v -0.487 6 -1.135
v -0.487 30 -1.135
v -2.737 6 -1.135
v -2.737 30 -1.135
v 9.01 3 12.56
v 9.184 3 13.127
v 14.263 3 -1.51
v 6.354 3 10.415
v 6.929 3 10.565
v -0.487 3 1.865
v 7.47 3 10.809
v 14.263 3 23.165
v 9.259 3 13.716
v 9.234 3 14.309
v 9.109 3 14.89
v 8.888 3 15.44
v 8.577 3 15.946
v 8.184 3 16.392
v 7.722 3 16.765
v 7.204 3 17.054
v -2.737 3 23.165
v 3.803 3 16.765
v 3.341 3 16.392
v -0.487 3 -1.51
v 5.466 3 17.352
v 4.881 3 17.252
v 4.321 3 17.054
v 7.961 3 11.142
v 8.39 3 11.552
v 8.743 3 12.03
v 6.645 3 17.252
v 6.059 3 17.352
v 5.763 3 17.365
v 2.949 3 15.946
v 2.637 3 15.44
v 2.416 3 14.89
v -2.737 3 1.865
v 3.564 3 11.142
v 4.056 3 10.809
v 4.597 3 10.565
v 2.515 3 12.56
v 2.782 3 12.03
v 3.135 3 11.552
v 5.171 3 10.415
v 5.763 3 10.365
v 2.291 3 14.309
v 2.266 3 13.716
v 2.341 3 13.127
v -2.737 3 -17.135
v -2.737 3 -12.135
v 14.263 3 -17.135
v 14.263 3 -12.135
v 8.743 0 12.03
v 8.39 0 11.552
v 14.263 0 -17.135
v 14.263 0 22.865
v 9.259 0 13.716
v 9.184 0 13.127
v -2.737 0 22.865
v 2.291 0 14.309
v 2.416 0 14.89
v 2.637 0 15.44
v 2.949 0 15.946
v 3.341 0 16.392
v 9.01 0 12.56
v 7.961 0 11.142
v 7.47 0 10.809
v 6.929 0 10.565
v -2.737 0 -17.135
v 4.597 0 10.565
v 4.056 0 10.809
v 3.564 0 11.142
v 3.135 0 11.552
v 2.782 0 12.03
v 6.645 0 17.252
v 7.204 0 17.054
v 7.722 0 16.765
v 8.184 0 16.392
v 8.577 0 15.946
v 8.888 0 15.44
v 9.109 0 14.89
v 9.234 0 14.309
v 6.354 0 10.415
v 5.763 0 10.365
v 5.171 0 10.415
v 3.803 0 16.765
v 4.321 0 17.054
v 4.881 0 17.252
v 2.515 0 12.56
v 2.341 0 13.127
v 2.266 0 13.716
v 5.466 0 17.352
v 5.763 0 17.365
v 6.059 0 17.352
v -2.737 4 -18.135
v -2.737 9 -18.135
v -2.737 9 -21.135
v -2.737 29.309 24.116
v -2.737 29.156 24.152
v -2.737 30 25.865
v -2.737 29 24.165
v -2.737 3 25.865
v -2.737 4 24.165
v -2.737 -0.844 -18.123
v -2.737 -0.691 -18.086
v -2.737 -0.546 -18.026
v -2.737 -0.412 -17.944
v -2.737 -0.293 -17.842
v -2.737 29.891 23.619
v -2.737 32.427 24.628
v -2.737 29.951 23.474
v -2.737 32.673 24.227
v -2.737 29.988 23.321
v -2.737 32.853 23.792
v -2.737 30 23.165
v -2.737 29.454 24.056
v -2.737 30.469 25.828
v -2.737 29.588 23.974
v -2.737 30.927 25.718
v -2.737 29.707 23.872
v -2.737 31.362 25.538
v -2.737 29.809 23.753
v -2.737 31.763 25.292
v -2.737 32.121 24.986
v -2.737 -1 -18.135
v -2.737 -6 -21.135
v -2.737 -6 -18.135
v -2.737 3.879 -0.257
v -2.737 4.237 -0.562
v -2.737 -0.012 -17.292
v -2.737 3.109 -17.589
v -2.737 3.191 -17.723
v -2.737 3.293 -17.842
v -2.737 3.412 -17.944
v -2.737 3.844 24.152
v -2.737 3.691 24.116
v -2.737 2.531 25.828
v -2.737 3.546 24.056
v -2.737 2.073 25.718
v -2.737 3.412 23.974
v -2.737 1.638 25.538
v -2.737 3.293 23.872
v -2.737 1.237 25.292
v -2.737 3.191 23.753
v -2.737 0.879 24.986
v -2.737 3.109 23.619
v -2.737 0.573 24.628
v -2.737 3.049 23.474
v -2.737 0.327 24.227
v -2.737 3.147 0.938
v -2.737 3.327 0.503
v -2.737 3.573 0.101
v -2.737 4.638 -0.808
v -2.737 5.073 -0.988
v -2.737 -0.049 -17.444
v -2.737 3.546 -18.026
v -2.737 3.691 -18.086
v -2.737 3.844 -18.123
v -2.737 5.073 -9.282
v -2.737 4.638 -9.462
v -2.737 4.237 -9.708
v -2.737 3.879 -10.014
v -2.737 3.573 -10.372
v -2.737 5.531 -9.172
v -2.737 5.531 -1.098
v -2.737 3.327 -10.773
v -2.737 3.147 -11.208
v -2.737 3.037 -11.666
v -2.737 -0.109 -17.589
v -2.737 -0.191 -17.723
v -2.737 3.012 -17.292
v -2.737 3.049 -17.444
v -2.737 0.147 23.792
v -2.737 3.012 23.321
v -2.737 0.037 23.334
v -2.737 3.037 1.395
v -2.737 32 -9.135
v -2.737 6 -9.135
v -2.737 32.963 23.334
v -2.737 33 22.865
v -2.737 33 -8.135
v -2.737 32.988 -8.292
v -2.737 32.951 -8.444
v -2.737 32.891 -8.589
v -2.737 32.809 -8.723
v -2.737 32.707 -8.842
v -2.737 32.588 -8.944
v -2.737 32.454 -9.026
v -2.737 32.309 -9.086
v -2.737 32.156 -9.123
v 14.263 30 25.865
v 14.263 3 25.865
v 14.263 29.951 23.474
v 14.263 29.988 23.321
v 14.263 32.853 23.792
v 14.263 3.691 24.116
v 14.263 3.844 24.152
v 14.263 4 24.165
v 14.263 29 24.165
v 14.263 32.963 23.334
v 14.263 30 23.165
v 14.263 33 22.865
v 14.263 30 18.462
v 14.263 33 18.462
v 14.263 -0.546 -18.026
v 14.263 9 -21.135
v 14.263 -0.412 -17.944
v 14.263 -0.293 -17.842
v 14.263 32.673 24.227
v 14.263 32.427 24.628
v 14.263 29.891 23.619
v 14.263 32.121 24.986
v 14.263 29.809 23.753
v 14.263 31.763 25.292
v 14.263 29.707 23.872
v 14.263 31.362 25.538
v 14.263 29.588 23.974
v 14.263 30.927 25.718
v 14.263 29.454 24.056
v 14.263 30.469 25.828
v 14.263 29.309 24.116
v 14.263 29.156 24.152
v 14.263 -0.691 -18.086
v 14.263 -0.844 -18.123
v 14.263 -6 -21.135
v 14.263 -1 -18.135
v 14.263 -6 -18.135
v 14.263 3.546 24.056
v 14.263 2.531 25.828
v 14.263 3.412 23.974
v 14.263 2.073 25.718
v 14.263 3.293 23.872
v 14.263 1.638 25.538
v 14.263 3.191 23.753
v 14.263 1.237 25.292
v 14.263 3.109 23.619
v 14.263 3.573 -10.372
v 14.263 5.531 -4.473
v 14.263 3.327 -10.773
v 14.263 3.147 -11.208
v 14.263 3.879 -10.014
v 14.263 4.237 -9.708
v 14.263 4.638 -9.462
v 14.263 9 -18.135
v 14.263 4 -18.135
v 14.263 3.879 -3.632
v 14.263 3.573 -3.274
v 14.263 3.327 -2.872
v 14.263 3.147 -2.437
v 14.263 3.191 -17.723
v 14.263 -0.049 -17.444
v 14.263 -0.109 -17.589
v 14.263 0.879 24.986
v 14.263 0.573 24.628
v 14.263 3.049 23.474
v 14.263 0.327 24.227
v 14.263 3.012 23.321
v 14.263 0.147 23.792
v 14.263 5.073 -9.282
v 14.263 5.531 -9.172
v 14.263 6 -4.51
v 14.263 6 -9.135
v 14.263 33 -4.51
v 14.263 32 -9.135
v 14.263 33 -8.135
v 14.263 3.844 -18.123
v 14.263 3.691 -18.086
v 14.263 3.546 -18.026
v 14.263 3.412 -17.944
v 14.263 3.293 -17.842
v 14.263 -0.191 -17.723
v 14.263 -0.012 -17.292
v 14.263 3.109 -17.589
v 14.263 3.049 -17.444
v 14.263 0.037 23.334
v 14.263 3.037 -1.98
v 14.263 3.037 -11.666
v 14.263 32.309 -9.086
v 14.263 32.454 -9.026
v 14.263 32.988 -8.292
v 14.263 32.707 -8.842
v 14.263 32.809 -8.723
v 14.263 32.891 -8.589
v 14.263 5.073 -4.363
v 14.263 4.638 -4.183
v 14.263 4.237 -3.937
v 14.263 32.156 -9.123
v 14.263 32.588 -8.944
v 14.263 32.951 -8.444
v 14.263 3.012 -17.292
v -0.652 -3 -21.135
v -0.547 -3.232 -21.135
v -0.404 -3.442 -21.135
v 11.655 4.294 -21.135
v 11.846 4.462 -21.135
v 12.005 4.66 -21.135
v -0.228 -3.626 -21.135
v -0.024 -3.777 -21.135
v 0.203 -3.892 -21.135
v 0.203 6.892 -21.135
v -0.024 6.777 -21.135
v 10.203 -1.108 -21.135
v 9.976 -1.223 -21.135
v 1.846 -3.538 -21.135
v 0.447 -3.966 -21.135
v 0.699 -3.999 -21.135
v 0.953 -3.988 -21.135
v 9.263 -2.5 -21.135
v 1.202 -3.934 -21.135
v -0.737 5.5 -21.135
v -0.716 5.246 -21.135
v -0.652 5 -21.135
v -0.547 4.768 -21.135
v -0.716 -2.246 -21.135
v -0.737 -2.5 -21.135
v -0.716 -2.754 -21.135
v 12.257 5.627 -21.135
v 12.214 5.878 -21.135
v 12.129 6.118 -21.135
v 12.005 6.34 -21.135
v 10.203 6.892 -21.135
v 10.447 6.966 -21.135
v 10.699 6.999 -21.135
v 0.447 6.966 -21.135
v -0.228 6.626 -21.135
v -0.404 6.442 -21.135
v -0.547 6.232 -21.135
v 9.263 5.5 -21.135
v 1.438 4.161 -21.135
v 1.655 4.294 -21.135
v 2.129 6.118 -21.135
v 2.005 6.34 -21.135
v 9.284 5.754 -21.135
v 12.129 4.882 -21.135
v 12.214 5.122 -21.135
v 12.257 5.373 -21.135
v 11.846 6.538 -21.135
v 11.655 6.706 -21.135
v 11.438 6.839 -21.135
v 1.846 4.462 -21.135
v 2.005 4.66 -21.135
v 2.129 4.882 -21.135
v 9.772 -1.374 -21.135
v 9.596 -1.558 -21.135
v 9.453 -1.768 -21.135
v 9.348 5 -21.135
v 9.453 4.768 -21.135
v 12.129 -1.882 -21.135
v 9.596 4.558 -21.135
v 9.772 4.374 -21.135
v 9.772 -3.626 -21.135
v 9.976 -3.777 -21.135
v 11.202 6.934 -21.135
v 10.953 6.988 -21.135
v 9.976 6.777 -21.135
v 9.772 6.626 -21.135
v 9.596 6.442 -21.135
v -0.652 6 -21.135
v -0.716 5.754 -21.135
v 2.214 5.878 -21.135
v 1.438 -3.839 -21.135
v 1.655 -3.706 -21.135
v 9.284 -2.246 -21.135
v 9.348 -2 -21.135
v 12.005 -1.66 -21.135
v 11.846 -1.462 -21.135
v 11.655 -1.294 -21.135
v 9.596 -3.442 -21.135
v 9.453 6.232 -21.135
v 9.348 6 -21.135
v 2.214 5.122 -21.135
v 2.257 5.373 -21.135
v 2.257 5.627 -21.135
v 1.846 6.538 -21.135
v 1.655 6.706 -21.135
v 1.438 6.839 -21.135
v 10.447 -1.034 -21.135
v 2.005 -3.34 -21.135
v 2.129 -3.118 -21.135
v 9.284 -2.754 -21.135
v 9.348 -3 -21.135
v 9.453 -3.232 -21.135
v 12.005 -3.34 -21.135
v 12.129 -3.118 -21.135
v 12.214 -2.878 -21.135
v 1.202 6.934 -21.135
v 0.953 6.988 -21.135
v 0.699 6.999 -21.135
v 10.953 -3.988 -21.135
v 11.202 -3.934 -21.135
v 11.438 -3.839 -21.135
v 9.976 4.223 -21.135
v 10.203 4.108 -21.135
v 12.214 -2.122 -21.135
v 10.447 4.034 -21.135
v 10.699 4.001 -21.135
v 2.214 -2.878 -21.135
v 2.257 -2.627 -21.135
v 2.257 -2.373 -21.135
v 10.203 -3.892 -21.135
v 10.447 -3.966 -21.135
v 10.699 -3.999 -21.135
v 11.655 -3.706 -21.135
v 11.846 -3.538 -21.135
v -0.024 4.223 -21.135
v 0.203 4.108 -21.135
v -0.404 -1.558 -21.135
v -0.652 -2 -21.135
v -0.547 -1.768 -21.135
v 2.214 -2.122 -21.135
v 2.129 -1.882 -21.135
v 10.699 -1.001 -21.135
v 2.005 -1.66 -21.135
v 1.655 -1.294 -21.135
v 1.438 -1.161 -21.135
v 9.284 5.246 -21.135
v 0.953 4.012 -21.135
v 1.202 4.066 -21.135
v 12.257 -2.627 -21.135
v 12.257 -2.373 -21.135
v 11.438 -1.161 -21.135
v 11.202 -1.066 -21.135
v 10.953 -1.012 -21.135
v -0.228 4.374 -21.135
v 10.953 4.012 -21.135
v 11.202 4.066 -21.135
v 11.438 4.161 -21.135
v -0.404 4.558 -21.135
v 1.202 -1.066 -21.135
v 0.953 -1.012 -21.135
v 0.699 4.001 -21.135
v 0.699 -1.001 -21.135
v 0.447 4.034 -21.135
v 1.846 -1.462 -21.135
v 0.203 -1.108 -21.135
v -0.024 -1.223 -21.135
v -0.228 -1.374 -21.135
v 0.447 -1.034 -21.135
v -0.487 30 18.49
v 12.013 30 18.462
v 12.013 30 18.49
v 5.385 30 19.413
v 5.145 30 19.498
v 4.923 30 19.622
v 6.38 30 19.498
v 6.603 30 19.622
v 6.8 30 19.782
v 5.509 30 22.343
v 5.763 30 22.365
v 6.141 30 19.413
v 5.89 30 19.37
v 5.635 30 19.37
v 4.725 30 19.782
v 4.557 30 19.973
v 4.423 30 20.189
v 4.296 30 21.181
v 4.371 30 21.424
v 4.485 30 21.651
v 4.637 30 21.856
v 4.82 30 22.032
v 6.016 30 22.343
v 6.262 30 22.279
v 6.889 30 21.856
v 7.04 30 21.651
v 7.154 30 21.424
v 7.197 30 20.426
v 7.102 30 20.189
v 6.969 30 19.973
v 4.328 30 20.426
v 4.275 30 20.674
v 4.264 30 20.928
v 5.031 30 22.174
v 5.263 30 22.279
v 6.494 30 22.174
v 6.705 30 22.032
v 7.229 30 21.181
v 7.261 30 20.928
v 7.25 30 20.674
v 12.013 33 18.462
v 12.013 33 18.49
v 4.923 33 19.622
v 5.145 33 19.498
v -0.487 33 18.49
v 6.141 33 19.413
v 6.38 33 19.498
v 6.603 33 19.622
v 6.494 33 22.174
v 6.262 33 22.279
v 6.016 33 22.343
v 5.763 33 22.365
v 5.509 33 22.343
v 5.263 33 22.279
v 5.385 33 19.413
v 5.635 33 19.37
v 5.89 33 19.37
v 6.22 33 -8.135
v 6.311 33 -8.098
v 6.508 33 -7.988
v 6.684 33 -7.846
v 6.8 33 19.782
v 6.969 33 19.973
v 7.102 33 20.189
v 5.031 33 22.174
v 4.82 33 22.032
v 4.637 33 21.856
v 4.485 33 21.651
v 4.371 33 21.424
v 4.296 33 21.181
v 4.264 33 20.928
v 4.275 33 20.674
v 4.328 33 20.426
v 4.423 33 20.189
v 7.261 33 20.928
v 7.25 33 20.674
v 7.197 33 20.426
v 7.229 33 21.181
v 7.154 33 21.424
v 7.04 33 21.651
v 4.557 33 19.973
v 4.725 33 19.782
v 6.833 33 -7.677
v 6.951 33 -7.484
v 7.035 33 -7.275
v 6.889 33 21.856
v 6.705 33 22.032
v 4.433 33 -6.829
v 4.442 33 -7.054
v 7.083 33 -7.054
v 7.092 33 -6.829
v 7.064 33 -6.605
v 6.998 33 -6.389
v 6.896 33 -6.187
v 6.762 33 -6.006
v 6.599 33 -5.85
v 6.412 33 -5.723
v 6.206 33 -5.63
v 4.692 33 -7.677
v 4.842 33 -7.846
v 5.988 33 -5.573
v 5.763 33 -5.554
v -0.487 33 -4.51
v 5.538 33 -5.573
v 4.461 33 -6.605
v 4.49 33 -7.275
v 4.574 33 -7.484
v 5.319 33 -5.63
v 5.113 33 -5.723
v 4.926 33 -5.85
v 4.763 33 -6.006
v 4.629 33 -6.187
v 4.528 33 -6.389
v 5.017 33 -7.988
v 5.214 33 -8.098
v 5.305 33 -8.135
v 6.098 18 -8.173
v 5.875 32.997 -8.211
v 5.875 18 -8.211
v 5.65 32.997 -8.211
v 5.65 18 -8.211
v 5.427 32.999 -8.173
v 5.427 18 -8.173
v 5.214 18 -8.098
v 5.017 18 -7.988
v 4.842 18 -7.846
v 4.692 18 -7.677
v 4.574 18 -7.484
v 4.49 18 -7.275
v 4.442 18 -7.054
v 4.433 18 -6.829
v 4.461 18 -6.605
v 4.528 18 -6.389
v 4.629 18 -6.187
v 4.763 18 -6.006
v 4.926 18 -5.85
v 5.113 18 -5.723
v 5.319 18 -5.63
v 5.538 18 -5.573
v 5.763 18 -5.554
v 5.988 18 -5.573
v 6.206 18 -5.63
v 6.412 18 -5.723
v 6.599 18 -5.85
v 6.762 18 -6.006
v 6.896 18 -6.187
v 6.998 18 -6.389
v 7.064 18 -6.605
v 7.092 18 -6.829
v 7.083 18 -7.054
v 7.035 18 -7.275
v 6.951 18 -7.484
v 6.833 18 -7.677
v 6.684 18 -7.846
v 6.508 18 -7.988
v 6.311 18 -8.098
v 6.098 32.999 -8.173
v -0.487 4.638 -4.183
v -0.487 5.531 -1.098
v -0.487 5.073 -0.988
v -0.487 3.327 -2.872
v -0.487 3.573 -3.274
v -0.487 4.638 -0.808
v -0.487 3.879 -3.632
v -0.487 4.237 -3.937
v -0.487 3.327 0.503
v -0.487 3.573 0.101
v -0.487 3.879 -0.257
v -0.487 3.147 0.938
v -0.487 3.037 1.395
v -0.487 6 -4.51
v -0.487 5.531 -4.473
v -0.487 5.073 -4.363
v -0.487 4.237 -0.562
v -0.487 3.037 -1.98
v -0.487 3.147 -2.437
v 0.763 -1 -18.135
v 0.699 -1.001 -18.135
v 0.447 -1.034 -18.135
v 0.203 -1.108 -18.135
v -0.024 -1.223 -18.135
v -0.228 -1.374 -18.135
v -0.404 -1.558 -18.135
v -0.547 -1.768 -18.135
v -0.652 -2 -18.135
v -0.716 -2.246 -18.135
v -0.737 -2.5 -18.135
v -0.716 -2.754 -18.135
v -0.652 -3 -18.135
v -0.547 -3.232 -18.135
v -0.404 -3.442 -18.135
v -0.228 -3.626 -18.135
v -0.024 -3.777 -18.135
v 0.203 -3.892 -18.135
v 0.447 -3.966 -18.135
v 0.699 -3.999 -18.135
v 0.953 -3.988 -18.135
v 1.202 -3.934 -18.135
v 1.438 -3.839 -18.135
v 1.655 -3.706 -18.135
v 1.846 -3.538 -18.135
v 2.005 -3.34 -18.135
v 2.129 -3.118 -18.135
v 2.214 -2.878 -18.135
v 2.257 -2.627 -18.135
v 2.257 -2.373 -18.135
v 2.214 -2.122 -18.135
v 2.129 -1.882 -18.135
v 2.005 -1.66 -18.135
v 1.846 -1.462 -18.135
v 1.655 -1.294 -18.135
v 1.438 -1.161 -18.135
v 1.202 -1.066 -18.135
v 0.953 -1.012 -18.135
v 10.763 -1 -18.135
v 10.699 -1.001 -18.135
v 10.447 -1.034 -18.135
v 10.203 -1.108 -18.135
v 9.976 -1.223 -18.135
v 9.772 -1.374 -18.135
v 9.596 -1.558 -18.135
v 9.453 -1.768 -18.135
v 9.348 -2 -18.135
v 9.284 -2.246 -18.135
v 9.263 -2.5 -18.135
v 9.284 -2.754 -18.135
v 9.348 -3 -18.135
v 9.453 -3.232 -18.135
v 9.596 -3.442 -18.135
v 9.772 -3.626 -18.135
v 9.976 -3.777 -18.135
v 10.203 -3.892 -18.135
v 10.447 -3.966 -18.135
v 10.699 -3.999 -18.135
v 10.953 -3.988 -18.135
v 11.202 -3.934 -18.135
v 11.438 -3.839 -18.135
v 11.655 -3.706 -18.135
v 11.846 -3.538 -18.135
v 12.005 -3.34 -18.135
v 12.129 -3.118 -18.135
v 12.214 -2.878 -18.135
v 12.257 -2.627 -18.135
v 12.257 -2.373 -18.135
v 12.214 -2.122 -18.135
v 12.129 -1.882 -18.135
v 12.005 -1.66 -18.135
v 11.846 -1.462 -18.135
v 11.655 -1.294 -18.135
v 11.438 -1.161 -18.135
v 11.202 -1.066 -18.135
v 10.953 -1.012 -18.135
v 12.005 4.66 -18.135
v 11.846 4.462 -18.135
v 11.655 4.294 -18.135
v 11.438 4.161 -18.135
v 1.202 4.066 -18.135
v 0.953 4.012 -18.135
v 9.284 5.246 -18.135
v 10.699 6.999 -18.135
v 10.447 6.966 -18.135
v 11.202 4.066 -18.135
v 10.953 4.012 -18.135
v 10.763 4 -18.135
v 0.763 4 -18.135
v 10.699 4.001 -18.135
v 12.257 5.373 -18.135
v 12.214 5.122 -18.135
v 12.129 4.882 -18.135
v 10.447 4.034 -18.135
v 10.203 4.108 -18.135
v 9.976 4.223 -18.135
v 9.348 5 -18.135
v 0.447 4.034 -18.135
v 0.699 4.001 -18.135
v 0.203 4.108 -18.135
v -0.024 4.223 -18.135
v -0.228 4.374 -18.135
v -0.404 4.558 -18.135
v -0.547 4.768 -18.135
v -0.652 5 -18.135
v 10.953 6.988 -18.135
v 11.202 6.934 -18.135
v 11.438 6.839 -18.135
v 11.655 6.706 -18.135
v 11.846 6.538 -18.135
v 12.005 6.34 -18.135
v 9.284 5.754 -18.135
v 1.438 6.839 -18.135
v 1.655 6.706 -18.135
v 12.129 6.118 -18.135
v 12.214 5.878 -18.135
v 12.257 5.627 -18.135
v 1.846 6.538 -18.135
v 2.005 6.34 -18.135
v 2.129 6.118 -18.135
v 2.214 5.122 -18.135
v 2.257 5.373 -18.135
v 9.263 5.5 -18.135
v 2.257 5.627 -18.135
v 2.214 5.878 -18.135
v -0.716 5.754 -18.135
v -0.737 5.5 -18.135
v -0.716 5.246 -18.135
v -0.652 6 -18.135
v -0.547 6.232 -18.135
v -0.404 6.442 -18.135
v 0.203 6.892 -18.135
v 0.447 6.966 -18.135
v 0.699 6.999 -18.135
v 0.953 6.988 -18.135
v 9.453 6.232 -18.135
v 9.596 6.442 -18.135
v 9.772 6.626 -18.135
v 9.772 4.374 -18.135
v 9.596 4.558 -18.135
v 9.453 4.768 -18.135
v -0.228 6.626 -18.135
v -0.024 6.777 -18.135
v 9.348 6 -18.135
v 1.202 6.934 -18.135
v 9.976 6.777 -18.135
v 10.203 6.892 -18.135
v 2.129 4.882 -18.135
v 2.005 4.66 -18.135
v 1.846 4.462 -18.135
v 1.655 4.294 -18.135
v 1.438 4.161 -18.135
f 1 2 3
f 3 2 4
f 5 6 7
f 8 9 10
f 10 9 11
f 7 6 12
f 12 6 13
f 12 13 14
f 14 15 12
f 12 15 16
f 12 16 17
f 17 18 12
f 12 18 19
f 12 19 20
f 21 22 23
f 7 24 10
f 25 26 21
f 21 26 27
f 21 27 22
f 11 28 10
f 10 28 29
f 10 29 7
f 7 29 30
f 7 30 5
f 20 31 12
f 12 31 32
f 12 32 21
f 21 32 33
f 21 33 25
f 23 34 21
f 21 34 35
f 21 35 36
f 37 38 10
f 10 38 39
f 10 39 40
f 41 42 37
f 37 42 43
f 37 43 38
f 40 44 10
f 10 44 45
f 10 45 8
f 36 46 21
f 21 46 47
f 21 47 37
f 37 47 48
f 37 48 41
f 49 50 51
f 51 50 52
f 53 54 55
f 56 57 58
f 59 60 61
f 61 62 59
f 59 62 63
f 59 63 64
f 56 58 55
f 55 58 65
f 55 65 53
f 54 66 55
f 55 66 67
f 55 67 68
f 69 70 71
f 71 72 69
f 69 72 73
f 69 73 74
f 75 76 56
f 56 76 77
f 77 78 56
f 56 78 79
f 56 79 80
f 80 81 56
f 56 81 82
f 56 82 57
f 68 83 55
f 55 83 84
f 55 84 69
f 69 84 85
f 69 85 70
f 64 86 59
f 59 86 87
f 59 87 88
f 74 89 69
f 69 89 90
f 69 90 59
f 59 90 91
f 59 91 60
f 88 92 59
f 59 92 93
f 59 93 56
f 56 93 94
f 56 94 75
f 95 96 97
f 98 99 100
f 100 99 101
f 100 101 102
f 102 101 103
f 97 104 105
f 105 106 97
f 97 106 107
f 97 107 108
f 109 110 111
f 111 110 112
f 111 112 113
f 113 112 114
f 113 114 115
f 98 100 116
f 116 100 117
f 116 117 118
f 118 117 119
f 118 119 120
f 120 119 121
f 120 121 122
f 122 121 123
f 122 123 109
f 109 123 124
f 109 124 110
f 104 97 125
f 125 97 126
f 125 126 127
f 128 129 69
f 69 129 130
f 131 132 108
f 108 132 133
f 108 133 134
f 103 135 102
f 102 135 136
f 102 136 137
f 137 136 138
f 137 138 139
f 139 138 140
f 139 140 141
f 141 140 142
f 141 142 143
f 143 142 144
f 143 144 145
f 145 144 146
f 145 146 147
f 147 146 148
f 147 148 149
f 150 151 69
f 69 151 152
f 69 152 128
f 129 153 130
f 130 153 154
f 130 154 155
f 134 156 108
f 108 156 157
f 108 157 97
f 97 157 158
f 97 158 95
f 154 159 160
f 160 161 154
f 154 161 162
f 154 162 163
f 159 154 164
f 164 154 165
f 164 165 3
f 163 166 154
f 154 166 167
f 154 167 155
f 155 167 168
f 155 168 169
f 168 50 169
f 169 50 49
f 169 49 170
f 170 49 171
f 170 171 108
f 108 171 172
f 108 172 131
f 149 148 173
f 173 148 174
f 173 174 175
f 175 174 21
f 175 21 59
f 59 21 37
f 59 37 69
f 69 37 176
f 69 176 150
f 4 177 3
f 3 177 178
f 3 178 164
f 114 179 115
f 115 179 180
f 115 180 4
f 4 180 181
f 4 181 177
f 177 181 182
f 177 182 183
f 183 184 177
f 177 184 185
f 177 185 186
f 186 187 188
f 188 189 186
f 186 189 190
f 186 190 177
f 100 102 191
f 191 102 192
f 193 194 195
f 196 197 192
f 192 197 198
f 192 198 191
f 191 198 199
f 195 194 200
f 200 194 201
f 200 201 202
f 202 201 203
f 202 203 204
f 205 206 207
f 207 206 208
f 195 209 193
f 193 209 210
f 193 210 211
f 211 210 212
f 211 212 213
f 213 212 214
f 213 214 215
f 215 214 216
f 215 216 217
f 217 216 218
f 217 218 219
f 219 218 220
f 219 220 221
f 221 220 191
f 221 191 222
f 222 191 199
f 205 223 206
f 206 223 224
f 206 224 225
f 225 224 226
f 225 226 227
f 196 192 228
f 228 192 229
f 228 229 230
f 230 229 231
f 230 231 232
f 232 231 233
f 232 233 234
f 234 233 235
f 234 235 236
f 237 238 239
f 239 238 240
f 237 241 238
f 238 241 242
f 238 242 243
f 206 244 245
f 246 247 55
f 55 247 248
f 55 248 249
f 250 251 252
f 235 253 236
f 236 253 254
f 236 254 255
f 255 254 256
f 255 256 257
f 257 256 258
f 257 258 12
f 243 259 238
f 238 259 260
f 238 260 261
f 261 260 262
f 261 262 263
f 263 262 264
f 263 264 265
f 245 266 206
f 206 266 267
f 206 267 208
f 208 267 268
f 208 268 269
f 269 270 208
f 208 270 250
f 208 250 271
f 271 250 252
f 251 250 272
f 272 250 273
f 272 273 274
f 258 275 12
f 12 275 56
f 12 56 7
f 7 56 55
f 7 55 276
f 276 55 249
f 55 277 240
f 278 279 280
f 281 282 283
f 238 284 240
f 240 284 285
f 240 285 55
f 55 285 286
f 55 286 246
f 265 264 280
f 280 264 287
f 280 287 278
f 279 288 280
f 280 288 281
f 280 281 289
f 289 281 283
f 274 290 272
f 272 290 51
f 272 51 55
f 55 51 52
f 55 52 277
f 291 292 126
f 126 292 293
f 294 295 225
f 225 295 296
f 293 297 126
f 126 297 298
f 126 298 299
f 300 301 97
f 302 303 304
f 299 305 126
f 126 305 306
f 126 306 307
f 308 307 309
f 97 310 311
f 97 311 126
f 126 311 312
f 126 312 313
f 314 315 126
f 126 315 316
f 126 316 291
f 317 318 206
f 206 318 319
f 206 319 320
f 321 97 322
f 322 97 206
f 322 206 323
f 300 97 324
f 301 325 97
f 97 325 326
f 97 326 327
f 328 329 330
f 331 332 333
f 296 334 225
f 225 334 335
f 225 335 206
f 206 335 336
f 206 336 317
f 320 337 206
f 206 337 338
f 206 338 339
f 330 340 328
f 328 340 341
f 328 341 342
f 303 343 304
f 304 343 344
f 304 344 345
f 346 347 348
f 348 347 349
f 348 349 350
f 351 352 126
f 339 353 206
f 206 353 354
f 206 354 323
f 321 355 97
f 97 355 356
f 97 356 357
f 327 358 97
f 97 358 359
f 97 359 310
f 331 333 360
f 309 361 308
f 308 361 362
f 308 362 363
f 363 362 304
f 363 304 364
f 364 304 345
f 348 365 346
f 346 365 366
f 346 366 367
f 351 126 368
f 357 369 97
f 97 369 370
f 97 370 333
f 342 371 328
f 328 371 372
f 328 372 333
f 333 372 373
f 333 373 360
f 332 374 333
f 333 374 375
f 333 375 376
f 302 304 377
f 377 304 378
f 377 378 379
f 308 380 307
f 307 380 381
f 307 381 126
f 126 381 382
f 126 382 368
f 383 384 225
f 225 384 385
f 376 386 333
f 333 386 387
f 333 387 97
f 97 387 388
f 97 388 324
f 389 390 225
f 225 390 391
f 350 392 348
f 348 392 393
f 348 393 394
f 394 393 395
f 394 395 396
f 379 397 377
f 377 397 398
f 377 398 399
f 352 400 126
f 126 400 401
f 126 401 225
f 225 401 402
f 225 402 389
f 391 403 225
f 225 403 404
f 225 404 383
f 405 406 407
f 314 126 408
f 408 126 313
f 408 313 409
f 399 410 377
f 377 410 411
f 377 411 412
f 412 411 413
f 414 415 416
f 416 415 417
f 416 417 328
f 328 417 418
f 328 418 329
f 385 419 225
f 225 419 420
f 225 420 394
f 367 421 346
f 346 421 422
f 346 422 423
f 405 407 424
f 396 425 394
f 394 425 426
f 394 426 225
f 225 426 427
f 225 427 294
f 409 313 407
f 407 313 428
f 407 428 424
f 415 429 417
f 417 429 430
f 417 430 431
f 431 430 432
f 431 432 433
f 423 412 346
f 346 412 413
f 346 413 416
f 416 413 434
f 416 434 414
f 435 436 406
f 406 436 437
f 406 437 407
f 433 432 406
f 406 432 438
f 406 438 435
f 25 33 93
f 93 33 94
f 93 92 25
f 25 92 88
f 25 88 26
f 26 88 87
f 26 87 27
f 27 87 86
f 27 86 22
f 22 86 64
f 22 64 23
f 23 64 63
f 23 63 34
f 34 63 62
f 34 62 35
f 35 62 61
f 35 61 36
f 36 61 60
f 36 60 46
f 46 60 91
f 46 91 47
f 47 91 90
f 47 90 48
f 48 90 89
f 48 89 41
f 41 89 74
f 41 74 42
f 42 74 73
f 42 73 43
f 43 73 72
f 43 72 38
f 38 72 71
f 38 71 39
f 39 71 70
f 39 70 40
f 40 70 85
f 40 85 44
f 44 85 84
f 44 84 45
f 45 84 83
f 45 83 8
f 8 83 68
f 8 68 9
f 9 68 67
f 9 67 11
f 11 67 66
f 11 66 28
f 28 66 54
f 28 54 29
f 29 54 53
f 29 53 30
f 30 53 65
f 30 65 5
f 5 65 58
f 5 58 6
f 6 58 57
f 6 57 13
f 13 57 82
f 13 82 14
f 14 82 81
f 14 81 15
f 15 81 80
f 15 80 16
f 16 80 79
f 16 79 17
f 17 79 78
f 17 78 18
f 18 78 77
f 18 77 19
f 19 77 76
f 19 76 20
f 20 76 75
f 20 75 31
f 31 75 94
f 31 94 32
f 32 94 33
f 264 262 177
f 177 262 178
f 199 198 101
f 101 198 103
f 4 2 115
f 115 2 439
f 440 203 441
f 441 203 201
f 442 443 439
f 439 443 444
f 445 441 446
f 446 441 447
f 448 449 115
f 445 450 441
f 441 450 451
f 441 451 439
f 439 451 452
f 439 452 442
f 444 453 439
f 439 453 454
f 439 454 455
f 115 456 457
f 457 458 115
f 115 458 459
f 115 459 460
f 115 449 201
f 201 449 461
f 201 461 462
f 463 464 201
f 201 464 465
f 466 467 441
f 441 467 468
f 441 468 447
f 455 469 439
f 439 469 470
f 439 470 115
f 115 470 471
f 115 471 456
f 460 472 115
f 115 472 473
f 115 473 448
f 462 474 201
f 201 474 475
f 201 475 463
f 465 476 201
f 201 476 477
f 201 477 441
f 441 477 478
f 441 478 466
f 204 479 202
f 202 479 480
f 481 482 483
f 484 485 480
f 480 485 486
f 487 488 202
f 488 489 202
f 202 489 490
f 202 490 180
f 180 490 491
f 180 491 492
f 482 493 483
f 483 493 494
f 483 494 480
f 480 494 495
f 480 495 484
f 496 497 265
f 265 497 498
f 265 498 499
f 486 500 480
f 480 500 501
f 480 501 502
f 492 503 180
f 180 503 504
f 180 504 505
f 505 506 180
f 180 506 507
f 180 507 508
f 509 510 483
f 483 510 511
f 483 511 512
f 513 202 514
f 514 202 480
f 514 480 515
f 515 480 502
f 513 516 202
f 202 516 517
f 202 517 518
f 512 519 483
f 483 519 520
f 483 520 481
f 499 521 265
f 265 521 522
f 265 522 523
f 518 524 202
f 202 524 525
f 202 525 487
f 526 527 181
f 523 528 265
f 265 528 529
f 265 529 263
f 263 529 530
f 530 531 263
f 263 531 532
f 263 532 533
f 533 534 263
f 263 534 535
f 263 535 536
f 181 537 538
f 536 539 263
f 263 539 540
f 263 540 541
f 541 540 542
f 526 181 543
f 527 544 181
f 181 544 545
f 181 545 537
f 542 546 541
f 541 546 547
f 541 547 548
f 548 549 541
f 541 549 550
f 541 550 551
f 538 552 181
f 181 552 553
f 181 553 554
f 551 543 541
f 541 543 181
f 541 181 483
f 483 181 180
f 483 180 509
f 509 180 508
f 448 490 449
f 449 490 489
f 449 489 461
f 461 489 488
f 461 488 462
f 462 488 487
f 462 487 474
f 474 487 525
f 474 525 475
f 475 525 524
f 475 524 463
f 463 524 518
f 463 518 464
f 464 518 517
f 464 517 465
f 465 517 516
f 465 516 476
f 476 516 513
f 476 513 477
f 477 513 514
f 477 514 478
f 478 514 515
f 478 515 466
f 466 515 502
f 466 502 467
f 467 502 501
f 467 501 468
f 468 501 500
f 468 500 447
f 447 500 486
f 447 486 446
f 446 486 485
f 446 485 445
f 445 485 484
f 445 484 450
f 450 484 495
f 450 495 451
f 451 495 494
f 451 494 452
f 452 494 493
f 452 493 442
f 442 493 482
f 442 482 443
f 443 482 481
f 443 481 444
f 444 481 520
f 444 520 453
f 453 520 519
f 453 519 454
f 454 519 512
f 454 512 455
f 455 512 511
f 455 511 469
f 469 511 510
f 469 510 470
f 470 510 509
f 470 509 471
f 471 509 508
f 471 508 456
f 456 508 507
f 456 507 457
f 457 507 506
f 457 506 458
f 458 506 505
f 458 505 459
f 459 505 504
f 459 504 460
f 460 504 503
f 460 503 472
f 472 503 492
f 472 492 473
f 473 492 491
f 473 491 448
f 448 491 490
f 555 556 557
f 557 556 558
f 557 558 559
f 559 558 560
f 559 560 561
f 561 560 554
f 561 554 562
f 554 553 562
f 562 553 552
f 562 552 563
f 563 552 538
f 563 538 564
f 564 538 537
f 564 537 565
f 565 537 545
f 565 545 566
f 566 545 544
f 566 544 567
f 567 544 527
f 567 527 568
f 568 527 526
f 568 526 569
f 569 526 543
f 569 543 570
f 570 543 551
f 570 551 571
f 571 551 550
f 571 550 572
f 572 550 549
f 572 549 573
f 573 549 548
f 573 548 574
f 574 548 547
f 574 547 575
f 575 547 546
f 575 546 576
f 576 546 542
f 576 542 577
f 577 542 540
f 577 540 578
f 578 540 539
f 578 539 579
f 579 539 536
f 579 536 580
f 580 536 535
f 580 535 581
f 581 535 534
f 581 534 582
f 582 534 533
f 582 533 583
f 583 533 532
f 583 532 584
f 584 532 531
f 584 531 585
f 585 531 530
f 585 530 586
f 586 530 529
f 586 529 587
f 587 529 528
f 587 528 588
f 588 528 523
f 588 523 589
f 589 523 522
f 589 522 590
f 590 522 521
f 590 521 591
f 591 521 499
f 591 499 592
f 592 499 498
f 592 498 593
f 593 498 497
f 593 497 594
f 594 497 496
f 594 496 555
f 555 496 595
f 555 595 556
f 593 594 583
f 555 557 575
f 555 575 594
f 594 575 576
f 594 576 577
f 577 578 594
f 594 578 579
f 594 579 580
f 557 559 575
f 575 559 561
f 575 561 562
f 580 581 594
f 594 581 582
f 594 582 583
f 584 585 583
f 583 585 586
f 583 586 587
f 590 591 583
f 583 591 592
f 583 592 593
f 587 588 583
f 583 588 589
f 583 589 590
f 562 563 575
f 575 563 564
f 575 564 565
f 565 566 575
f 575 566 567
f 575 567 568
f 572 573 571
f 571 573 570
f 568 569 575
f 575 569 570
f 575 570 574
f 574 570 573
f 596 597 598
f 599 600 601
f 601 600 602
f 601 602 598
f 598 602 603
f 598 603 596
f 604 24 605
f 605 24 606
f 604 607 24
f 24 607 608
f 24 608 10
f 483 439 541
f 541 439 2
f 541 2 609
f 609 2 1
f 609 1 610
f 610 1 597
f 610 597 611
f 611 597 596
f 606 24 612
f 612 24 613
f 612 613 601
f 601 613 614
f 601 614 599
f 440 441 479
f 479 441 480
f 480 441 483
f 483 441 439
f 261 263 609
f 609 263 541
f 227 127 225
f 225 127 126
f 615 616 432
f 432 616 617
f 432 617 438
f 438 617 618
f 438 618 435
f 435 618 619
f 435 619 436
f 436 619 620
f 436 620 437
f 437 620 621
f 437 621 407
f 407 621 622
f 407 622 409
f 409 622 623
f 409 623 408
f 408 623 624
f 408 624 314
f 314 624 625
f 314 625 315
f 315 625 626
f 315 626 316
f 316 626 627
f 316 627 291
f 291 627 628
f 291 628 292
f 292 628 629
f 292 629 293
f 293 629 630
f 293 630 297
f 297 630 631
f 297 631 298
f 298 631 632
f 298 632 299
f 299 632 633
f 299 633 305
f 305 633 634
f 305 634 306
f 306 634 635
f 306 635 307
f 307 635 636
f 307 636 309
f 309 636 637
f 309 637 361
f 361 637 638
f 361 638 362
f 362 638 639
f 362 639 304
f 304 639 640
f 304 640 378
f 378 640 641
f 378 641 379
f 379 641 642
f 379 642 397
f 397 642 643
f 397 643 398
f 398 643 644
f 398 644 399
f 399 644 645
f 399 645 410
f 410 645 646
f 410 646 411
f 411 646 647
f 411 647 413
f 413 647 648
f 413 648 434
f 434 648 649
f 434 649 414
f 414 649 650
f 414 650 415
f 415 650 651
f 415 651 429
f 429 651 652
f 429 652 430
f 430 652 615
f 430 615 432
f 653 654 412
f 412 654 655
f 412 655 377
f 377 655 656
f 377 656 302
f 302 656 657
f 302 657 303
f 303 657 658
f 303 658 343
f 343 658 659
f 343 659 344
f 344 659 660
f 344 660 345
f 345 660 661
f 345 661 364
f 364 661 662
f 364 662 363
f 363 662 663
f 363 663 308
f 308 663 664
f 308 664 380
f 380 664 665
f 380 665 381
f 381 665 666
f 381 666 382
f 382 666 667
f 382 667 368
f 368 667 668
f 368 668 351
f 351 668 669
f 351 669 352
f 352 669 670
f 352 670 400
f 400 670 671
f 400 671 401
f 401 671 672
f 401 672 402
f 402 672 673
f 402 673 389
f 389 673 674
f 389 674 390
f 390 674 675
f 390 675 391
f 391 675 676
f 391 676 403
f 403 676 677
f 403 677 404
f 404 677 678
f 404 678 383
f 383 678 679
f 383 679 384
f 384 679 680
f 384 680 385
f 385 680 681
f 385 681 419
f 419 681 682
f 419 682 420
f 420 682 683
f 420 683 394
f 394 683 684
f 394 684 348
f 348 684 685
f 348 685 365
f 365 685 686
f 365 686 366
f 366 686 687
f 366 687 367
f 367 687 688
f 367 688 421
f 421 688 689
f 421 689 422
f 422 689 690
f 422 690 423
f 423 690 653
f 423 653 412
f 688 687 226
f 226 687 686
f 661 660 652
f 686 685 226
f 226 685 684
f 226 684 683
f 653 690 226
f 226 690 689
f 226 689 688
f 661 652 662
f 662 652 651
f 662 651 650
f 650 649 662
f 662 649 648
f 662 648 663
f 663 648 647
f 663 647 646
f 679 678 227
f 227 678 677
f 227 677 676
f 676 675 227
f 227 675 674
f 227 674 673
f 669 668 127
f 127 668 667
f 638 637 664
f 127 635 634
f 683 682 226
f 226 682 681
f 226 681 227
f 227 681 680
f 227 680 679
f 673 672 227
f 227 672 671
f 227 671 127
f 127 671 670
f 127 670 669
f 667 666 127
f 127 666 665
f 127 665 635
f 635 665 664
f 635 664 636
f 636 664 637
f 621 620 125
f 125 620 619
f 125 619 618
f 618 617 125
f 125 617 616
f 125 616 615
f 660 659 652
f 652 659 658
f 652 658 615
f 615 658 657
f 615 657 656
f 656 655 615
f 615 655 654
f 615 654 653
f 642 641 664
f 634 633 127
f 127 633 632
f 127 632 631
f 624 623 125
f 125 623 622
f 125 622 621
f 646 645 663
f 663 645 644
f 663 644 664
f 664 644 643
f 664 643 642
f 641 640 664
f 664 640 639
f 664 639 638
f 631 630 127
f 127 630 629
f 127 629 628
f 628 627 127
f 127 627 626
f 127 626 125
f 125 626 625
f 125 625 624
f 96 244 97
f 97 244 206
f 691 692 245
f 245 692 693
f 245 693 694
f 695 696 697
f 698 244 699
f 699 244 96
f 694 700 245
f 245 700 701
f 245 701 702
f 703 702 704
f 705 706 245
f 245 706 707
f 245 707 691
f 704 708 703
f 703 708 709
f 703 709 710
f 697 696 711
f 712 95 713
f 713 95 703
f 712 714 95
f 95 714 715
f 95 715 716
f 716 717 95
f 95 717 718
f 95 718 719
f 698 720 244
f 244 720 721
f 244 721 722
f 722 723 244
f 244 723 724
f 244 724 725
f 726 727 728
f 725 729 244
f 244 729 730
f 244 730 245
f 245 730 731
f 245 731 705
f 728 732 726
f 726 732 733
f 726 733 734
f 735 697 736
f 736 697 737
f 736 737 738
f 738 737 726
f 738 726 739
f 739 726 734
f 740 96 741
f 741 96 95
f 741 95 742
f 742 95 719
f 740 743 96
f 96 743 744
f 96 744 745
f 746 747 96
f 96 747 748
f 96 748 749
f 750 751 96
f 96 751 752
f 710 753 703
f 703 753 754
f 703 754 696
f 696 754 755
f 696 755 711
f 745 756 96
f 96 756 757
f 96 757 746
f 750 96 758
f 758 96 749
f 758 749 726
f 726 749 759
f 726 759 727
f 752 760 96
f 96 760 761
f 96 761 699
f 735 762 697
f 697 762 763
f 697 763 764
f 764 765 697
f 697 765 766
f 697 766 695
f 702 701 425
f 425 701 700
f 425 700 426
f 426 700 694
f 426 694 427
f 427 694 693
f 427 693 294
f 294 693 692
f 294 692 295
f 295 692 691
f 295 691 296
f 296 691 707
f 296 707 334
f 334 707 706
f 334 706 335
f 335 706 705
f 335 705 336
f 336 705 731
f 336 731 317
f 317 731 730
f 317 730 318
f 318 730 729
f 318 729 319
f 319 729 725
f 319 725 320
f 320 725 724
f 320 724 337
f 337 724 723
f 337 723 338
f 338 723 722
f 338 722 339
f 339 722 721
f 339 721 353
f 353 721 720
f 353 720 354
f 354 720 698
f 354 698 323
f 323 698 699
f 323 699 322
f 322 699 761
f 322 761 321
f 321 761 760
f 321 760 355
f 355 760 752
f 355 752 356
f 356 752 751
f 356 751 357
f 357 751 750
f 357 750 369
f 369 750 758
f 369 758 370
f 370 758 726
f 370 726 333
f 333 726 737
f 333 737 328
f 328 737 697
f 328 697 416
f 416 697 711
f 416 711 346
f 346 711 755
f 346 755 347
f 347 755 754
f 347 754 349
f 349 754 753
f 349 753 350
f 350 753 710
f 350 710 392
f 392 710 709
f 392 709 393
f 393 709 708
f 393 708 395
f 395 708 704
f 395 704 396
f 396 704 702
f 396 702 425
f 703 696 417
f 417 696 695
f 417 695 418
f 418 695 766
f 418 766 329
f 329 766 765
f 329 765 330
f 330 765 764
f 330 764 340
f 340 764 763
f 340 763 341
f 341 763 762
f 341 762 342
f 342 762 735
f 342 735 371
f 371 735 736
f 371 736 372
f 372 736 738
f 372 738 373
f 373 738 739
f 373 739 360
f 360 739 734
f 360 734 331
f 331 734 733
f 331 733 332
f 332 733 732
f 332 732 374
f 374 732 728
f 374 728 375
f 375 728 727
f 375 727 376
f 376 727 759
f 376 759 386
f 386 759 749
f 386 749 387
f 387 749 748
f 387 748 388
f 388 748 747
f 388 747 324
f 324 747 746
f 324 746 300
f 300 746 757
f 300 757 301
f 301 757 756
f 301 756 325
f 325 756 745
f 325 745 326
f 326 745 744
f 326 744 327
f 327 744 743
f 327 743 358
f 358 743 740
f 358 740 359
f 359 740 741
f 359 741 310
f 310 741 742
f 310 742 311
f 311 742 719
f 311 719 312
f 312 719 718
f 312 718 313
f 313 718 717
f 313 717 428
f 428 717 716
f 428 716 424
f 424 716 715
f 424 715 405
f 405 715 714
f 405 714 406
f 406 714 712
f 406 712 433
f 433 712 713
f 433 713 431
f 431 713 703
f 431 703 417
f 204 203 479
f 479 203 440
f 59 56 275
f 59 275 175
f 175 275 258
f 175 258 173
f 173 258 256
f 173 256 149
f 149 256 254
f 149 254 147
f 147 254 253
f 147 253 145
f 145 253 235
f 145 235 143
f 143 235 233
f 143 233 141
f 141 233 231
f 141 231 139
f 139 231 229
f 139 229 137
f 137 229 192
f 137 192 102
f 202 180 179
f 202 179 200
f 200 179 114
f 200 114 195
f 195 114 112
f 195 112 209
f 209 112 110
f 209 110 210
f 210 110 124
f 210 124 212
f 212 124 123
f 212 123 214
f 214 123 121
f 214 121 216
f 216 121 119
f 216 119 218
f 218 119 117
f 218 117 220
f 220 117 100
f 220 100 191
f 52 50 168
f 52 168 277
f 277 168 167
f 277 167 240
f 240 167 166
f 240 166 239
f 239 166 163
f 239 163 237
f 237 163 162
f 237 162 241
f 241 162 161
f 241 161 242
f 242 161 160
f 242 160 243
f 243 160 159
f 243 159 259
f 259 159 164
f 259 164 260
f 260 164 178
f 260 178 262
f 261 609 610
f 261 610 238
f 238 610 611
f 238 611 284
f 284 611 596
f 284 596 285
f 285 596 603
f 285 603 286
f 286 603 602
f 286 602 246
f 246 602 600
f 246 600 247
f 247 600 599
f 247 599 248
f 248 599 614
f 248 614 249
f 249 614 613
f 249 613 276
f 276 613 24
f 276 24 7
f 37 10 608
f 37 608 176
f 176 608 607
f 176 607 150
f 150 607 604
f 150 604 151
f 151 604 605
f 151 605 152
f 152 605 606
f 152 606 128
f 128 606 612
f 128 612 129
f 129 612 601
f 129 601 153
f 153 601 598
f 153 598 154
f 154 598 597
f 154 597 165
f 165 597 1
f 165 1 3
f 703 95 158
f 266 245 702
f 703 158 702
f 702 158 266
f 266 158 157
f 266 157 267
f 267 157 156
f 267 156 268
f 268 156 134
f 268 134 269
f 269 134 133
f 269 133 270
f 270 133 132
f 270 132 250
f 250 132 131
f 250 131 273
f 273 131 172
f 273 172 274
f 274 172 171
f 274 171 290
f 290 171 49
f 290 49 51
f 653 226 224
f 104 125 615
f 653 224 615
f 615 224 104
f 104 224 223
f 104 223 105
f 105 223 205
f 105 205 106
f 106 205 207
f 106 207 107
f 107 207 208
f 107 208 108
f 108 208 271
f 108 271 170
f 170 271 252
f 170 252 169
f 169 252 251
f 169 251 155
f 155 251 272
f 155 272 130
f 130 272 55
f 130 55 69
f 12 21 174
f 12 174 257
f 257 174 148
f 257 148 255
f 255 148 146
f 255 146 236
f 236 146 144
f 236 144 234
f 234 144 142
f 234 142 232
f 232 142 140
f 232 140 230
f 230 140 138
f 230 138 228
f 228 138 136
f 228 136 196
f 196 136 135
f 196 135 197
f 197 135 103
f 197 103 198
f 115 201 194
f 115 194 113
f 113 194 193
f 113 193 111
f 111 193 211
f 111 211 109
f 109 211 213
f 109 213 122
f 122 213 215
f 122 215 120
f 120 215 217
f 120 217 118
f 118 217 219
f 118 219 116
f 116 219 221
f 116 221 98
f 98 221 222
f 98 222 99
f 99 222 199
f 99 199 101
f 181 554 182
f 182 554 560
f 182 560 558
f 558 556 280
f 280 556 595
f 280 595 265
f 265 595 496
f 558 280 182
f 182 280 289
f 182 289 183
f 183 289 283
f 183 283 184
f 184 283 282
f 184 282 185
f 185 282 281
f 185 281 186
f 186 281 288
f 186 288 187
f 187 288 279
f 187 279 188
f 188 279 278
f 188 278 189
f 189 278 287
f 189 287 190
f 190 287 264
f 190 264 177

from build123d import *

# Parameters (mm, degrees)
SKETCH1_W           = 17
SKETCH1_H           = 47
SKETCH1_R           = 3.5
BOSS_EXTRUDE1_DEPTH = 3
SKETCH2_W           = 17
SKETCH2_H           = 8
SKETCH2_H_2         = 1.7
BOSS_EXTRUDE2_DEPTH = 27
SKETCH3_W           = 17
SKETCH3_H           = 35
BOSS_EXTRUDE3_DEPTH = 3
SKETCH4_R           = 3.5
CUT_EXTRUDE1_DEPTH  = 3
SKETCH5_R           = 1.5
SKETCH5_R_2         = 1.331036909
CUT_EXTRUDE2_DEPTH  = 15
SKETCH7_W           = 12.5
SKETCH7_H           = 23
CUT_EXTRUDE3_DEPTH  = 30
SKETCH8_W           = 17
SKETCH8_H           = 15
SKETCH8_R           = 1.5
BOSS_EXTRUDE4_DEPTH = 3
SKETCH9_W           = 2.25
SKETCH9_H           = 22.972634834
CUT_EXTRUDE4_DEPTH  = 30
FILLET8_R           = 3
FILLET9_R           = 3
FILLET10_R          = 3
FILLET11_R          = 3
FILLET12_R          = 3
FILLET13_START      = -2.737421384
FILLET13_DEPTH      = 17
FILLET14_START      = -2.737421384
FILLET14_DEPTH      = 17
FILLET15_R          = 1
FILLET16_R          = 1
FILLET17_R          = 1


with BuildPart() as part:
    # Sketch1 → Boss-Extrude1 (new body)
    with BuildSketch(Plane(origin=(0, 0, 0), x_dir=(1, 0, 0), z_dir=(0, 1, 0))):
        with Locations((5.762578616, -2.364779874)):
            Rectangle(SKETCH1_W, SKETCH1_H)
        with Locations(Location((5.762578616, -13.864779874, 0), (0, 0, 270))):
            Circle(SKETCH1_R, mode=Mode.SUBTRACT)
    extrude(amount=BOSS_EXTRUDE1_DEPTH)

    # Sketch2 → Boss-Extrude2 (add)
    with BuildSketch(Plane(origin=(0, 3, 0), x_dir=(1, 0, 0), z_dir=(0, 1, 0))):
        with Locations((5.762578616, 5.135220126)):
            Rectangle(SKETCH2_W, SKETCH2_H)
        with Locations((5.762578616, -25.014779874)):
            Rectangle(SKETCH2_W, SKETCH2_H_2)
    extrude(amount=BOSS_EXTRUDE2_DEPTH)

    # Sketch3 → Boss-Extrude3 (add)
    with BuildSketch(Plane(origin=(0, 30, 0), x_dir=(1, 0, 0), z_dir=(0, 1, 0))):
        with Locations((5.762578616, -8.364779874)):
            Rectangle(SKETCH3_W, SKETCH3_H)
    extrude(amount=BOSS_EXTRUDE3_DEPTH)

    # Sketch4 → Cut-Extrude1 (cut)
    with BuildSketch(Plane.XZ.offset(-30)):
        with Locations(Location((5.762578616, 13.864779874, 0), (0, 0, 90))):
            Circle(SKETCH4_R)
    extrude(amount=-CUT_EXTRUDE1_DEPTH, mode=Mode.SUBTRACT)

    # Sketch5 → Cut-Extrude2 (cut)
    with BuildSketch(Plane(origin=(0, 33, 0), x_dir=(1, 0, 0), z_dir=(0, 1, 0))):
        with Locations(Location((5.762578616, -20.864779874, 0), (0, 0, 270))):
            Circle(SKETCH5_R)
        with Locations(Location((5.762578616, 6.885220126, 0), (0, 0, 270))):
            Circle(SKETCH5_R_2)
    extrude(amount=-CUT_EXTRUDE2_DEPTH, mode=Mode.SUBTRACT)

    # Sketch7 → Cut-Extrude3 (cut)
    with BuildSketch(Plane(origin=(0, 33, 0), x_dir=(1, 0, 0), z_dir=(0, 1, 0))):
        with Locations((5.762578616, -6.989779874)):
            Rectangle(SKETCH7_W, SKETCH7_H)
    extrude(amount=-CUT_EXTRUDE3_DEPTH, mode=Mode.SUBTRACT)

    # Sketch8 → Boss-Extrude4 (add)
    with BuildSketch(Plane(origin=(0, 0, -21.135220126), x_dir=(-1, 0, 0), z_dir=(0, 0, -1))):
        with Locations((-5.762578616, 1.5)):
            Rectangle(SKETCH8_W, SKETCH8_H)
        with Locations((-10.762578616, 5.5)):
            Circle(SKETCH8_R, mode=Mode.SUBTRACT)
        with Locations((-0.762578616, 5.5)):
            Circle(SKETCH8_R, mode=Mode.SUBTRACT)
        with Locations((-10.762578616, -2.5)):
            Circle(SKETCH8_R, mode=Mode.SUBTRACT)
        with Locations((-0.762578616, -2.5)):
            Circle(SKETCH8_R, mode=Mode.SUBTRACT)
    extrude(amount=-BOSS_EXTRUDE4_DEPTH)

    # Sketch9 → Cut-Extrude4 (cut)
    with BuildSketch(Plane(origin=(0, 33, 0), x_dir=(1, 0, 0), z_dir=(0, 1, 0))):
        with Locations((13.137578616, -6.976097291)):
            Rectangle(SKETCH9_W, SKETCH9_H)
    extrude(amount=-CUT_EXTRUDE4_DEPTH, mode=Mode.SUBTRACT)

    # Fillet8
    fillet8_edges = [part.edges().sort_by_distance(p)[0] for p in [
        (5.762578616, 0, 25.864779874),
    ]]
    fillet(fillet8_edges, radius=FILLET8_R)

    # Fillet9
    fillet9_edges = [part.edges().sort_by_distance(p)[0] for p in [
        (5.762578616, 33, 25.864779874),
    ]]
    fillet(fillet9_edges, radius=FILLET9_R)

    # Fillet10
    fillet10_edges = [part.edges().sort_by_distance(p)[0] for p in [
        (5.762578616, 3, -9.135220126),
    ]]
    fillet(fillet10_edges, radius=FILLET10_R)

    # Fillet11
    fillet11_edges = [part.edges().sort_by_distance(p)[0] for p in [
        (6.887578616, 3, -4.510220126),
    ]]
    fillet(fillet11_edges, radius=FILLET11_R)

    # Fillet12
    fillet12_edges = [part.edges().sort_by_distance(p)[0] for p in [
        (-1.612421384, 3, -1.135220126),
    ]]
    fillet(fillet12_edges, radius=FILLET12_R)

    # Fillet13: read off the stored shape, not the designer's step
    # Fillet13 outline → Fillet13 (add)
    with BuildSketch(Plane.YZ.offset(FILLET13_START)):
        with BuildLine():
            Line((3, -18.135220126), (4, -18.135220126))
            ThreePointArc((4, -18.135220126), (3.292893219, -17.842326907), (3, -17.135220126))
            Line((3, -17.135220126), (3, -18.135220126))
        make_face()
    extrude(amount=FILLET13_DEPTH)

    # Fillet14: read off the stored shape, not the designer's step
    # Fillet14 outline → Fillet14 (add)
    with BuildSketch(Plane.YZ.offset(FILLET14_START)):
        with BuildLine():
            ThreePointArc((0, -17.135220126), (-0.292893219, -17.842326907), (-1, -18.135220126))
            Line((-1, -18.135220126), (0, -18.135220126))
            Line((0, -18.135220126), (0, -17.135220126))
        make_face()
    extrude(amount=FILLET14_DEPTH)

    # Fillet15
    fillet15_edges = [part.edges().sort_by_distance(p)[0] for p in [
        (5.762578616, 3, 24.164779874),
    ]]
    fillet(fillet15_edges, radius=FILLET15_R)

    # Fillet16
    fillet16_edges = [part.edges().sort_by_distance(p)[0] for p in [
        (5.762578616, 30, 24.164779874),
    ]]
    fillet(fillet16_edges, radius=FILLET16_R)

    # Fillet17
    # the kernel refuses this fillet: 1 mm, written as the material it takes off along each edge
    with BuildSketch(Plane(origin=(-5.237421384, 33, -9.135220126), x_dir=(0, -1, 0), z_dir=(1, 0, 0))) as fillet17_piece_1:
        with BuildLine():
            CenterArc((FILLET17_R, -FILLET17_R), FILLET17_R, 90, 90)
            Line((0, -FILLET17_R), (0, 0))
            Line((0, 0), (FILLET17_R, 0))
        make_face()
    extrude(amount=22, mode=Mode.SUBTRACT)


solid = part.part
